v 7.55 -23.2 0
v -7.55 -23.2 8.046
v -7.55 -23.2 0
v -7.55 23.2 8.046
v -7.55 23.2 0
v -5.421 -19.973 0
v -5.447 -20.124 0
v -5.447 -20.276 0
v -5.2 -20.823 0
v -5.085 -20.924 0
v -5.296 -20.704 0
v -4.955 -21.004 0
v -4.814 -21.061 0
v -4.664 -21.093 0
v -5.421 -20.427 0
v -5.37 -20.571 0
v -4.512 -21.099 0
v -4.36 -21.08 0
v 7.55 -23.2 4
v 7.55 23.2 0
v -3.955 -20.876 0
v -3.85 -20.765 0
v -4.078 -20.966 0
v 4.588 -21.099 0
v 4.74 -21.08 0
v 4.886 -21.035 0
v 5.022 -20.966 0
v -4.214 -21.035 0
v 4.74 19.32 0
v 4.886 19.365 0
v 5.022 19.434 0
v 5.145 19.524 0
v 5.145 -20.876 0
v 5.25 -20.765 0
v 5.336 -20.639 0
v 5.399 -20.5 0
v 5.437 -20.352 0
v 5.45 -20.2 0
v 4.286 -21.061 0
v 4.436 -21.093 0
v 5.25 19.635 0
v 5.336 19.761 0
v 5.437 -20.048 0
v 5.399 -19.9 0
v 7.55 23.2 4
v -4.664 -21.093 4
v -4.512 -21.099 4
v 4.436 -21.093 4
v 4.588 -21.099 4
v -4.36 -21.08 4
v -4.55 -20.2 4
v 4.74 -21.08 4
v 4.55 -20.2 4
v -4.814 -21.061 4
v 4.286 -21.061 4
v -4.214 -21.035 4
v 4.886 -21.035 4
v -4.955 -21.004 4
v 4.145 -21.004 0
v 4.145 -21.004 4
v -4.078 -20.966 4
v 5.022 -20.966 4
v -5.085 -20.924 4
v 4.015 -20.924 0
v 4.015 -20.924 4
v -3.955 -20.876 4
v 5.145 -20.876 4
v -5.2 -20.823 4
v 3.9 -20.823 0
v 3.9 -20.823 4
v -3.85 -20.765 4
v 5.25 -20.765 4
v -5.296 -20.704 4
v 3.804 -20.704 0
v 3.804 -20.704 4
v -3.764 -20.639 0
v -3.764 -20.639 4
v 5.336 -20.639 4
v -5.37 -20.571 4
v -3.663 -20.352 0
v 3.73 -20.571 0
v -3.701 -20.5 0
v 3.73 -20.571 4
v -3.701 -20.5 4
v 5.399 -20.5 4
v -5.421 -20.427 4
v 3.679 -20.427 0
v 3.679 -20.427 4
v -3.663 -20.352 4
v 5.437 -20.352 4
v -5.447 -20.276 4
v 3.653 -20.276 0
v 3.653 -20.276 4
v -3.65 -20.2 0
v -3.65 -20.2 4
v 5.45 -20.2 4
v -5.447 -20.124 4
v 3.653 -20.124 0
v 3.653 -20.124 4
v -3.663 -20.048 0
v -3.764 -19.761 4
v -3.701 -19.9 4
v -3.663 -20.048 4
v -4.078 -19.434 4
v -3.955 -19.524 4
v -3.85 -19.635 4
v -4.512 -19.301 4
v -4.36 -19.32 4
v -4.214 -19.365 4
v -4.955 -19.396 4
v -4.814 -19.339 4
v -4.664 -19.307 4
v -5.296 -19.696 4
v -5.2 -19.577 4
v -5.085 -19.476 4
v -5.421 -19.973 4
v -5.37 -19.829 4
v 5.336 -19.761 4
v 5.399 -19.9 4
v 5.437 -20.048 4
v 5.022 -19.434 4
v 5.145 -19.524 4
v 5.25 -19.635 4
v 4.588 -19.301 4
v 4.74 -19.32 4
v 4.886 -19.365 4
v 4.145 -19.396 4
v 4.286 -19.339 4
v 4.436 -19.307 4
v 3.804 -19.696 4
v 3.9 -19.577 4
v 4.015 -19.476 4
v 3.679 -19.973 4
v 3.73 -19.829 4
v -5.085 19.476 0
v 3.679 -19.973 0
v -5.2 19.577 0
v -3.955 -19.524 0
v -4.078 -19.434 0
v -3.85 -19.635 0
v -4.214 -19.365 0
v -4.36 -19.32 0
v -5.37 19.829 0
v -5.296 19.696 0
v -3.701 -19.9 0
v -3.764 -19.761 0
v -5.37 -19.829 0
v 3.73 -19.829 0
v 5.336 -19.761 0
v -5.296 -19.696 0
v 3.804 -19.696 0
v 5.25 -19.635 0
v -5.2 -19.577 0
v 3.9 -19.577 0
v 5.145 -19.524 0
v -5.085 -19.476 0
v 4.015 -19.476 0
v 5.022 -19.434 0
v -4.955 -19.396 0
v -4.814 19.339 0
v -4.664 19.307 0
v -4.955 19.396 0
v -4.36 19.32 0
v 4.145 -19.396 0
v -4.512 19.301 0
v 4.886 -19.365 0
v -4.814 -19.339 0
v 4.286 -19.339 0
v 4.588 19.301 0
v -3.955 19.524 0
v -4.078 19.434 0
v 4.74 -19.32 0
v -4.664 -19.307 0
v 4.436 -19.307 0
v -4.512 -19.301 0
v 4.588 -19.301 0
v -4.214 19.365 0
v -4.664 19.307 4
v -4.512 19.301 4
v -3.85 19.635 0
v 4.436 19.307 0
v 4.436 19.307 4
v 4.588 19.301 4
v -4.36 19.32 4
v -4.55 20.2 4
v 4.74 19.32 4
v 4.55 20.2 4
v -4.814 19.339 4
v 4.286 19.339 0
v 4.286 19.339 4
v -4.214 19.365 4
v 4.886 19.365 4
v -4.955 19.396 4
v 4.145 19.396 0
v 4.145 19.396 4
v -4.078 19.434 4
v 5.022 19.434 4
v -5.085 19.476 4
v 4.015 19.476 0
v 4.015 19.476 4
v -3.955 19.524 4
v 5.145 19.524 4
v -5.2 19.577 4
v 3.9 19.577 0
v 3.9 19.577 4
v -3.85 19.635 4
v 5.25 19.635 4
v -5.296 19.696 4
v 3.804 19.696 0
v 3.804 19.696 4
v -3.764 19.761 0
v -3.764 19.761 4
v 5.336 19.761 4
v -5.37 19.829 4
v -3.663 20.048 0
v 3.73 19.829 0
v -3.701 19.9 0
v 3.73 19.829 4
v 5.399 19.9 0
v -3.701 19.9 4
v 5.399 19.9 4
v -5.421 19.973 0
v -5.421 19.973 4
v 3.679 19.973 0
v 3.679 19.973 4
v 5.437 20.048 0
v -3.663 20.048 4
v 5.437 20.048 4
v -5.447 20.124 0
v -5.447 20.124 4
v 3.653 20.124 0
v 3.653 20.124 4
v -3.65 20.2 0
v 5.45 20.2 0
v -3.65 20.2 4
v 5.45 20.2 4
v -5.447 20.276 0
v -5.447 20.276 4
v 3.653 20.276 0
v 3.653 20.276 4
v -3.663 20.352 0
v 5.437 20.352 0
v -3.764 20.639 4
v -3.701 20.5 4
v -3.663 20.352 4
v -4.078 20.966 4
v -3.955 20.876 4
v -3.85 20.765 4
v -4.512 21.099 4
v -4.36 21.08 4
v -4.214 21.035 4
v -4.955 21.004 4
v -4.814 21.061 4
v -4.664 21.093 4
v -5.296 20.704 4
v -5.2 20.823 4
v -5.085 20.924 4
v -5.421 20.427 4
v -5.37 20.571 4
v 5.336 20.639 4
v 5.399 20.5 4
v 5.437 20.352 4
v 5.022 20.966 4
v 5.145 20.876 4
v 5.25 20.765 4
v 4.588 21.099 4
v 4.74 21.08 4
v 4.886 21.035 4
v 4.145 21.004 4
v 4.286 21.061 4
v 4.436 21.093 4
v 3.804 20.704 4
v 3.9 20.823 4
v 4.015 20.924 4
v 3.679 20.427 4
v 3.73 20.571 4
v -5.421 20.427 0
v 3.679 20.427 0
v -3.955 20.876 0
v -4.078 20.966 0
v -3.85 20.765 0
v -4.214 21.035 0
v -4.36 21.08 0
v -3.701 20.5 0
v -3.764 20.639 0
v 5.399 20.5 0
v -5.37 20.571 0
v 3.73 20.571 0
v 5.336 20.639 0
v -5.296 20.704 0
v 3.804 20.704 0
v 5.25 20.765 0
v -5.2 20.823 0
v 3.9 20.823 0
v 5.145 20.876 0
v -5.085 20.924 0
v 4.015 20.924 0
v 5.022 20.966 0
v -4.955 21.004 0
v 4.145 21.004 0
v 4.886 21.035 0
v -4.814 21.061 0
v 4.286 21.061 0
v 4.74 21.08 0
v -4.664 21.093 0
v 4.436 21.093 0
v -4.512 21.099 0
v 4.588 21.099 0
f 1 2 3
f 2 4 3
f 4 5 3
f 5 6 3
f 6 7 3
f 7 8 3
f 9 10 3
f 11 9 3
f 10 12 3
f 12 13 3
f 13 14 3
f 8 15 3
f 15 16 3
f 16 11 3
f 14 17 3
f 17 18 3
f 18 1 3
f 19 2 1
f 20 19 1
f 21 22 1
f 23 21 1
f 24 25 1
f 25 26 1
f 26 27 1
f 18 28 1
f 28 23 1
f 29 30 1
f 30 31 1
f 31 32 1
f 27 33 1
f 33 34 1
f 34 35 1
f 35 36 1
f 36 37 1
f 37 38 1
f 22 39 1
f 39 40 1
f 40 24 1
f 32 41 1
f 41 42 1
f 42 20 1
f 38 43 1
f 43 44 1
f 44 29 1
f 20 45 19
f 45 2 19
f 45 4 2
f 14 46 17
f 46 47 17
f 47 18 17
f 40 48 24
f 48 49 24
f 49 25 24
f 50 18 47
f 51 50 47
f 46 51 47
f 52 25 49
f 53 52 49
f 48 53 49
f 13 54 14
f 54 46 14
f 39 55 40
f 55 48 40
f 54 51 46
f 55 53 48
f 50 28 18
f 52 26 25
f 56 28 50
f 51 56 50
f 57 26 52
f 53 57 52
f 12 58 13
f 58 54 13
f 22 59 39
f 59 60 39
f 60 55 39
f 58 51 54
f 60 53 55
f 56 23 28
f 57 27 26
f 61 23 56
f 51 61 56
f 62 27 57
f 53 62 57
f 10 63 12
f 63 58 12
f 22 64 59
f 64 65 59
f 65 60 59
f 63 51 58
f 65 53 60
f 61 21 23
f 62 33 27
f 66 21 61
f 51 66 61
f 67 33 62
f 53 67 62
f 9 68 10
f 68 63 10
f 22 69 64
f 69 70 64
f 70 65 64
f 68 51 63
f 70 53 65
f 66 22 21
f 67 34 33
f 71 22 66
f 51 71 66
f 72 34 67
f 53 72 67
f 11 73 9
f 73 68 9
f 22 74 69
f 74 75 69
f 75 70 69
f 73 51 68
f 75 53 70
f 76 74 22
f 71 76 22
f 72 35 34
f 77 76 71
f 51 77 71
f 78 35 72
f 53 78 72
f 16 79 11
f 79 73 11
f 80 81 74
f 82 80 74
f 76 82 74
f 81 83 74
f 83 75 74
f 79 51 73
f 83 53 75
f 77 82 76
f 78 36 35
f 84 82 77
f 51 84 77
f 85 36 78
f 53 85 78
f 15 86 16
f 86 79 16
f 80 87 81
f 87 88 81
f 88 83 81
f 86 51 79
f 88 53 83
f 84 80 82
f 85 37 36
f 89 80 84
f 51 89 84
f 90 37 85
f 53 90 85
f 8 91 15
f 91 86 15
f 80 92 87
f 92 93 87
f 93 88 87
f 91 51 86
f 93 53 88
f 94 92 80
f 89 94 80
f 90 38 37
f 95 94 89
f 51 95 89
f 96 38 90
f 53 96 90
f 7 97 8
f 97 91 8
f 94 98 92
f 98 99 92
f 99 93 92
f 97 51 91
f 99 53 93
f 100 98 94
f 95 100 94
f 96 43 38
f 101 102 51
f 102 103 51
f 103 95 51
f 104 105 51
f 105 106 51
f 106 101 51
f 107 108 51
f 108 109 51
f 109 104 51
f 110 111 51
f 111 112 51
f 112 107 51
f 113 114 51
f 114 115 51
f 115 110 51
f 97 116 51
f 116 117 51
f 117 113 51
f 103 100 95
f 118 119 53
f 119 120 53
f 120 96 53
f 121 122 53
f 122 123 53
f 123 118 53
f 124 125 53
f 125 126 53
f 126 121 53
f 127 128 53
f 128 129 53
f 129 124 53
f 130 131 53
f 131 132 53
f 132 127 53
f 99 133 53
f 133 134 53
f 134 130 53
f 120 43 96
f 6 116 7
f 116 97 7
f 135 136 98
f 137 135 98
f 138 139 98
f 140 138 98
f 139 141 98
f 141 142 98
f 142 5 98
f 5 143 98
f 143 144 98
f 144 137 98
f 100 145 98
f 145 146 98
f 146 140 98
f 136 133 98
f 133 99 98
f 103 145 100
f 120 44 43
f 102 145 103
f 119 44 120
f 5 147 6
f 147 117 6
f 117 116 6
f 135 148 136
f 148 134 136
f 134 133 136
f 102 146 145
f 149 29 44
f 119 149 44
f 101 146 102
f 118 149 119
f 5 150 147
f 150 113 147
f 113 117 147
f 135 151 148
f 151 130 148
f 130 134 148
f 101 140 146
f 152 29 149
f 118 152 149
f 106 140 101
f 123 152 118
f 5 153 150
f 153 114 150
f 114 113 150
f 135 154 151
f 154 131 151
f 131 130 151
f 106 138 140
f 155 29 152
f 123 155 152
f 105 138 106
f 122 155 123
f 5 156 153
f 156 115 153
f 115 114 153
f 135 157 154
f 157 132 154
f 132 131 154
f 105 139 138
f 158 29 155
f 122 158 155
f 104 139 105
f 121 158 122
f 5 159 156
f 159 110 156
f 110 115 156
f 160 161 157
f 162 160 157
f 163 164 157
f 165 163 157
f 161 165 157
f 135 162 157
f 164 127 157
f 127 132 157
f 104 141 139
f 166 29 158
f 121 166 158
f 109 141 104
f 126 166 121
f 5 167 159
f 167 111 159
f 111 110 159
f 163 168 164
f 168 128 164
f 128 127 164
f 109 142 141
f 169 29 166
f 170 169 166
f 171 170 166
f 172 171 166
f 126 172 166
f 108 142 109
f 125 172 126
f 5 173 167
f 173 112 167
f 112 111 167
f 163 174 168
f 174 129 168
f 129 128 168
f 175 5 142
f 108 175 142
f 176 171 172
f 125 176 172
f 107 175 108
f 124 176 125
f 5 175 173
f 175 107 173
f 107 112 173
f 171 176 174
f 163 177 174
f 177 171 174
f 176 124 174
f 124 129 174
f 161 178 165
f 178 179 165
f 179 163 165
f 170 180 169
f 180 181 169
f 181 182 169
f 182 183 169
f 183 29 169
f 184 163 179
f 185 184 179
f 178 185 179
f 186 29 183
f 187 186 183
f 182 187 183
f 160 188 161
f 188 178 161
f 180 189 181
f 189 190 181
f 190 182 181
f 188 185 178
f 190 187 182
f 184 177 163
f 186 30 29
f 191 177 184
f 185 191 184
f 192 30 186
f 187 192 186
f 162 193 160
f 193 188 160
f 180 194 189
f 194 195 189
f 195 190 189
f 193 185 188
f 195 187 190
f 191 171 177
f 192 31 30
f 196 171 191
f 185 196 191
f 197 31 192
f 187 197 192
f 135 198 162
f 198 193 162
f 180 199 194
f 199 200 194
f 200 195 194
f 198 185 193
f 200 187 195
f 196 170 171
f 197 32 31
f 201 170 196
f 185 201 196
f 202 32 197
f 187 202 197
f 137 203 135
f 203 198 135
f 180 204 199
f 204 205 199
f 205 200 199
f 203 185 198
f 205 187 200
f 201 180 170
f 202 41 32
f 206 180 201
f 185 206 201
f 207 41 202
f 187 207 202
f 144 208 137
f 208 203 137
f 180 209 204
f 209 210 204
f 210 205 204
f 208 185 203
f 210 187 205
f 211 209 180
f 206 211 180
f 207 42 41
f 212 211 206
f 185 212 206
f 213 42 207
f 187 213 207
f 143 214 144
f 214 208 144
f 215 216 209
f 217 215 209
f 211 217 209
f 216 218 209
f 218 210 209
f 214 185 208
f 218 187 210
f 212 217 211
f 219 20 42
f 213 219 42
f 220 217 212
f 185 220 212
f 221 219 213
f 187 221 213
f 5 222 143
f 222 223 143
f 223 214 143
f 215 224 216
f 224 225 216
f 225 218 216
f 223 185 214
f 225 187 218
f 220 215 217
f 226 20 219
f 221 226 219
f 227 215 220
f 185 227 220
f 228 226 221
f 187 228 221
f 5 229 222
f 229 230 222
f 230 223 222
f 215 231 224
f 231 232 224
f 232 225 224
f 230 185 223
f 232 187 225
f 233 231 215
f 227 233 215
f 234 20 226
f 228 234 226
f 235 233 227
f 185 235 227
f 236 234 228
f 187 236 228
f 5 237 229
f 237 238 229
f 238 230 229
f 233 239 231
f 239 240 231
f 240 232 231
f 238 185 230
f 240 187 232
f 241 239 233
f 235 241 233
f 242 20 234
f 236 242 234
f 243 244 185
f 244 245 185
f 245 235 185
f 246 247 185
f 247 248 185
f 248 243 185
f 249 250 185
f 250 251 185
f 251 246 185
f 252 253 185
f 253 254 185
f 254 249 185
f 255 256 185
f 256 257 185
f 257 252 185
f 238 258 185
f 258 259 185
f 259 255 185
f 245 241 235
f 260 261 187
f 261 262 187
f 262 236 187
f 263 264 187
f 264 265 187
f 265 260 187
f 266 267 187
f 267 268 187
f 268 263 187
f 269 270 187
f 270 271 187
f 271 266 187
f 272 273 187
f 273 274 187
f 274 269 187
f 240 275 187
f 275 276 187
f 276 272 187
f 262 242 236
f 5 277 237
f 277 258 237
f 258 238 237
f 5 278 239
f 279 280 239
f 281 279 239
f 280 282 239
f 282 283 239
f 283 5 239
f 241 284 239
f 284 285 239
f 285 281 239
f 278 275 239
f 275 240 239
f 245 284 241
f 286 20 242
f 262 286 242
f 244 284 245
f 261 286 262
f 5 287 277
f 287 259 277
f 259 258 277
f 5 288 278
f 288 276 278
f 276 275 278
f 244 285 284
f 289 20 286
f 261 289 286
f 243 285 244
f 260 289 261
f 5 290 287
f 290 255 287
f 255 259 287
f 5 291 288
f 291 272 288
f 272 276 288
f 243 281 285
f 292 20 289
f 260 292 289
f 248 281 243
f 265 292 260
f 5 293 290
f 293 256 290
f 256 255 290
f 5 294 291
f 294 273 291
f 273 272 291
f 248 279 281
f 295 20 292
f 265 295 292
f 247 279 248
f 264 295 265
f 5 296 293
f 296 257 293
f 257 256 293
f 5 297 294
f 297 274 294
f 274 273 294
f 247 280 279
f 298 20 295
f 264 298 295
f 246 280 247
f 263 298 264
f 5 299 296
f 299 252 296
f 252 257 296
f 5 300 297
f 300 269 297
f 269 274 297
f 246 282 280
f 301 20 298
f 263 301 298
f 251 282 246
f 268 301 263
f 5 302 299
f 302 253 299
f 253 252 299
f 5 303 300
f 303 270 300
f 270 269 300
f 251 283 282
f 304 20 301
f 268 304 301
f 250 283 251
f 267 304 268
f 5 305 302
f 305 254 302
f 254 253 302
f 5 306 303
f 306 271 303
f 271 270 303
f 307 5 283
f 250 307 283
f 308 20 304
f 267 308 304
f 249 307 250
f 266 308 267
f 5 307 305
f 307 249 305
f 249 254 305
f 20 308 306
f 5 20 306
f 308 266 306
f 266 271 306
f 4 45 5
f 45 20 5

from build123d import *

# Parameters (mm, degrees)
SKETCH1_W                       = 15.1
SKETCH1_H                       = 46.4
SKETCH1_W_2                     = 9.1
SKETCH1_H_2                     = 40.4
BOSS_EXTRUDE1_DEPTH             = 4
TAP_DRILL_FOR_M2X0_4_TAP1_D     = 1.8
TAP_DRILL_FOR_M2X0_4_TAP1_DEPTH = 10
TAP_DRILL_FOR_M2X0_4_TAP1_TIP   = 0.540774557
BOSS_EXTRUDE2_DEPTH             = 46.4


with BuildPart() as part:
    # Sketch1 → Boss-Extrude1 (new body)
    # profile 1 of 2: a face of its own
    with BuildSketch(Plane.XY):
        Rectangle(SKETCH1_W, SKETCH1_H)
        Rectangle(SKETCH1_W_2, SKETCH1_H_2, mode=Mode.SUBTRACT)
    # profile 2 of 2: a face of its own
    with BuildSketch(Plane.XY):
        Rectangle(SKETCH1_W_2, SKETCH1_H_2)
    extrude(amount=BOSS_EXTRUDE1_DEPTH)

    # Tap Drill for M2x0.4 Tap1
    with Locations(Plane(origin=(-4.55, 20.2, 4), x_dir=(1, 0, 0), z_dir=(0, 0, 1))):
        with Locations((0, 0), (9.1, 0), (9.1, -40.4), (0, -40.4)):
            Hole(TAP_DRILL_FOR_M2X0_4_TAP1_D / 2, depth=TAP_DRILL_FOR_M2X0_4_TAP1_DEPTH)
            with Locations((0, 0, -(TAP_DRILL_FOR_M2X0_4_TAP1_DEPTH + TAP_DRILL_FOR_M2X0_4_TAP1_TIP / 2))):  # 118° drill point
                Cone(0, TAP_DRILL_FOR_M2X0_4_TAP1_D / 2, TAP_DRILL_FOR_M2X0_4_TAP1_TIP, mode=Mode.SUBTRACT)

    # Sketch5 → Boss-Extrude2 (add)
    with BuildSketch(Plane(origin=(0, -23.2, 0), x_dir=(-1, 0, 0), z_dir=(0, -1, 0))):
        Polygon((-7.55, -4), (7.55, -8.046032806), (7.55, -4), align=None)
    extrude(amount=-BOSS_EXTRUDE2_DEPTH)


solid = part.part
